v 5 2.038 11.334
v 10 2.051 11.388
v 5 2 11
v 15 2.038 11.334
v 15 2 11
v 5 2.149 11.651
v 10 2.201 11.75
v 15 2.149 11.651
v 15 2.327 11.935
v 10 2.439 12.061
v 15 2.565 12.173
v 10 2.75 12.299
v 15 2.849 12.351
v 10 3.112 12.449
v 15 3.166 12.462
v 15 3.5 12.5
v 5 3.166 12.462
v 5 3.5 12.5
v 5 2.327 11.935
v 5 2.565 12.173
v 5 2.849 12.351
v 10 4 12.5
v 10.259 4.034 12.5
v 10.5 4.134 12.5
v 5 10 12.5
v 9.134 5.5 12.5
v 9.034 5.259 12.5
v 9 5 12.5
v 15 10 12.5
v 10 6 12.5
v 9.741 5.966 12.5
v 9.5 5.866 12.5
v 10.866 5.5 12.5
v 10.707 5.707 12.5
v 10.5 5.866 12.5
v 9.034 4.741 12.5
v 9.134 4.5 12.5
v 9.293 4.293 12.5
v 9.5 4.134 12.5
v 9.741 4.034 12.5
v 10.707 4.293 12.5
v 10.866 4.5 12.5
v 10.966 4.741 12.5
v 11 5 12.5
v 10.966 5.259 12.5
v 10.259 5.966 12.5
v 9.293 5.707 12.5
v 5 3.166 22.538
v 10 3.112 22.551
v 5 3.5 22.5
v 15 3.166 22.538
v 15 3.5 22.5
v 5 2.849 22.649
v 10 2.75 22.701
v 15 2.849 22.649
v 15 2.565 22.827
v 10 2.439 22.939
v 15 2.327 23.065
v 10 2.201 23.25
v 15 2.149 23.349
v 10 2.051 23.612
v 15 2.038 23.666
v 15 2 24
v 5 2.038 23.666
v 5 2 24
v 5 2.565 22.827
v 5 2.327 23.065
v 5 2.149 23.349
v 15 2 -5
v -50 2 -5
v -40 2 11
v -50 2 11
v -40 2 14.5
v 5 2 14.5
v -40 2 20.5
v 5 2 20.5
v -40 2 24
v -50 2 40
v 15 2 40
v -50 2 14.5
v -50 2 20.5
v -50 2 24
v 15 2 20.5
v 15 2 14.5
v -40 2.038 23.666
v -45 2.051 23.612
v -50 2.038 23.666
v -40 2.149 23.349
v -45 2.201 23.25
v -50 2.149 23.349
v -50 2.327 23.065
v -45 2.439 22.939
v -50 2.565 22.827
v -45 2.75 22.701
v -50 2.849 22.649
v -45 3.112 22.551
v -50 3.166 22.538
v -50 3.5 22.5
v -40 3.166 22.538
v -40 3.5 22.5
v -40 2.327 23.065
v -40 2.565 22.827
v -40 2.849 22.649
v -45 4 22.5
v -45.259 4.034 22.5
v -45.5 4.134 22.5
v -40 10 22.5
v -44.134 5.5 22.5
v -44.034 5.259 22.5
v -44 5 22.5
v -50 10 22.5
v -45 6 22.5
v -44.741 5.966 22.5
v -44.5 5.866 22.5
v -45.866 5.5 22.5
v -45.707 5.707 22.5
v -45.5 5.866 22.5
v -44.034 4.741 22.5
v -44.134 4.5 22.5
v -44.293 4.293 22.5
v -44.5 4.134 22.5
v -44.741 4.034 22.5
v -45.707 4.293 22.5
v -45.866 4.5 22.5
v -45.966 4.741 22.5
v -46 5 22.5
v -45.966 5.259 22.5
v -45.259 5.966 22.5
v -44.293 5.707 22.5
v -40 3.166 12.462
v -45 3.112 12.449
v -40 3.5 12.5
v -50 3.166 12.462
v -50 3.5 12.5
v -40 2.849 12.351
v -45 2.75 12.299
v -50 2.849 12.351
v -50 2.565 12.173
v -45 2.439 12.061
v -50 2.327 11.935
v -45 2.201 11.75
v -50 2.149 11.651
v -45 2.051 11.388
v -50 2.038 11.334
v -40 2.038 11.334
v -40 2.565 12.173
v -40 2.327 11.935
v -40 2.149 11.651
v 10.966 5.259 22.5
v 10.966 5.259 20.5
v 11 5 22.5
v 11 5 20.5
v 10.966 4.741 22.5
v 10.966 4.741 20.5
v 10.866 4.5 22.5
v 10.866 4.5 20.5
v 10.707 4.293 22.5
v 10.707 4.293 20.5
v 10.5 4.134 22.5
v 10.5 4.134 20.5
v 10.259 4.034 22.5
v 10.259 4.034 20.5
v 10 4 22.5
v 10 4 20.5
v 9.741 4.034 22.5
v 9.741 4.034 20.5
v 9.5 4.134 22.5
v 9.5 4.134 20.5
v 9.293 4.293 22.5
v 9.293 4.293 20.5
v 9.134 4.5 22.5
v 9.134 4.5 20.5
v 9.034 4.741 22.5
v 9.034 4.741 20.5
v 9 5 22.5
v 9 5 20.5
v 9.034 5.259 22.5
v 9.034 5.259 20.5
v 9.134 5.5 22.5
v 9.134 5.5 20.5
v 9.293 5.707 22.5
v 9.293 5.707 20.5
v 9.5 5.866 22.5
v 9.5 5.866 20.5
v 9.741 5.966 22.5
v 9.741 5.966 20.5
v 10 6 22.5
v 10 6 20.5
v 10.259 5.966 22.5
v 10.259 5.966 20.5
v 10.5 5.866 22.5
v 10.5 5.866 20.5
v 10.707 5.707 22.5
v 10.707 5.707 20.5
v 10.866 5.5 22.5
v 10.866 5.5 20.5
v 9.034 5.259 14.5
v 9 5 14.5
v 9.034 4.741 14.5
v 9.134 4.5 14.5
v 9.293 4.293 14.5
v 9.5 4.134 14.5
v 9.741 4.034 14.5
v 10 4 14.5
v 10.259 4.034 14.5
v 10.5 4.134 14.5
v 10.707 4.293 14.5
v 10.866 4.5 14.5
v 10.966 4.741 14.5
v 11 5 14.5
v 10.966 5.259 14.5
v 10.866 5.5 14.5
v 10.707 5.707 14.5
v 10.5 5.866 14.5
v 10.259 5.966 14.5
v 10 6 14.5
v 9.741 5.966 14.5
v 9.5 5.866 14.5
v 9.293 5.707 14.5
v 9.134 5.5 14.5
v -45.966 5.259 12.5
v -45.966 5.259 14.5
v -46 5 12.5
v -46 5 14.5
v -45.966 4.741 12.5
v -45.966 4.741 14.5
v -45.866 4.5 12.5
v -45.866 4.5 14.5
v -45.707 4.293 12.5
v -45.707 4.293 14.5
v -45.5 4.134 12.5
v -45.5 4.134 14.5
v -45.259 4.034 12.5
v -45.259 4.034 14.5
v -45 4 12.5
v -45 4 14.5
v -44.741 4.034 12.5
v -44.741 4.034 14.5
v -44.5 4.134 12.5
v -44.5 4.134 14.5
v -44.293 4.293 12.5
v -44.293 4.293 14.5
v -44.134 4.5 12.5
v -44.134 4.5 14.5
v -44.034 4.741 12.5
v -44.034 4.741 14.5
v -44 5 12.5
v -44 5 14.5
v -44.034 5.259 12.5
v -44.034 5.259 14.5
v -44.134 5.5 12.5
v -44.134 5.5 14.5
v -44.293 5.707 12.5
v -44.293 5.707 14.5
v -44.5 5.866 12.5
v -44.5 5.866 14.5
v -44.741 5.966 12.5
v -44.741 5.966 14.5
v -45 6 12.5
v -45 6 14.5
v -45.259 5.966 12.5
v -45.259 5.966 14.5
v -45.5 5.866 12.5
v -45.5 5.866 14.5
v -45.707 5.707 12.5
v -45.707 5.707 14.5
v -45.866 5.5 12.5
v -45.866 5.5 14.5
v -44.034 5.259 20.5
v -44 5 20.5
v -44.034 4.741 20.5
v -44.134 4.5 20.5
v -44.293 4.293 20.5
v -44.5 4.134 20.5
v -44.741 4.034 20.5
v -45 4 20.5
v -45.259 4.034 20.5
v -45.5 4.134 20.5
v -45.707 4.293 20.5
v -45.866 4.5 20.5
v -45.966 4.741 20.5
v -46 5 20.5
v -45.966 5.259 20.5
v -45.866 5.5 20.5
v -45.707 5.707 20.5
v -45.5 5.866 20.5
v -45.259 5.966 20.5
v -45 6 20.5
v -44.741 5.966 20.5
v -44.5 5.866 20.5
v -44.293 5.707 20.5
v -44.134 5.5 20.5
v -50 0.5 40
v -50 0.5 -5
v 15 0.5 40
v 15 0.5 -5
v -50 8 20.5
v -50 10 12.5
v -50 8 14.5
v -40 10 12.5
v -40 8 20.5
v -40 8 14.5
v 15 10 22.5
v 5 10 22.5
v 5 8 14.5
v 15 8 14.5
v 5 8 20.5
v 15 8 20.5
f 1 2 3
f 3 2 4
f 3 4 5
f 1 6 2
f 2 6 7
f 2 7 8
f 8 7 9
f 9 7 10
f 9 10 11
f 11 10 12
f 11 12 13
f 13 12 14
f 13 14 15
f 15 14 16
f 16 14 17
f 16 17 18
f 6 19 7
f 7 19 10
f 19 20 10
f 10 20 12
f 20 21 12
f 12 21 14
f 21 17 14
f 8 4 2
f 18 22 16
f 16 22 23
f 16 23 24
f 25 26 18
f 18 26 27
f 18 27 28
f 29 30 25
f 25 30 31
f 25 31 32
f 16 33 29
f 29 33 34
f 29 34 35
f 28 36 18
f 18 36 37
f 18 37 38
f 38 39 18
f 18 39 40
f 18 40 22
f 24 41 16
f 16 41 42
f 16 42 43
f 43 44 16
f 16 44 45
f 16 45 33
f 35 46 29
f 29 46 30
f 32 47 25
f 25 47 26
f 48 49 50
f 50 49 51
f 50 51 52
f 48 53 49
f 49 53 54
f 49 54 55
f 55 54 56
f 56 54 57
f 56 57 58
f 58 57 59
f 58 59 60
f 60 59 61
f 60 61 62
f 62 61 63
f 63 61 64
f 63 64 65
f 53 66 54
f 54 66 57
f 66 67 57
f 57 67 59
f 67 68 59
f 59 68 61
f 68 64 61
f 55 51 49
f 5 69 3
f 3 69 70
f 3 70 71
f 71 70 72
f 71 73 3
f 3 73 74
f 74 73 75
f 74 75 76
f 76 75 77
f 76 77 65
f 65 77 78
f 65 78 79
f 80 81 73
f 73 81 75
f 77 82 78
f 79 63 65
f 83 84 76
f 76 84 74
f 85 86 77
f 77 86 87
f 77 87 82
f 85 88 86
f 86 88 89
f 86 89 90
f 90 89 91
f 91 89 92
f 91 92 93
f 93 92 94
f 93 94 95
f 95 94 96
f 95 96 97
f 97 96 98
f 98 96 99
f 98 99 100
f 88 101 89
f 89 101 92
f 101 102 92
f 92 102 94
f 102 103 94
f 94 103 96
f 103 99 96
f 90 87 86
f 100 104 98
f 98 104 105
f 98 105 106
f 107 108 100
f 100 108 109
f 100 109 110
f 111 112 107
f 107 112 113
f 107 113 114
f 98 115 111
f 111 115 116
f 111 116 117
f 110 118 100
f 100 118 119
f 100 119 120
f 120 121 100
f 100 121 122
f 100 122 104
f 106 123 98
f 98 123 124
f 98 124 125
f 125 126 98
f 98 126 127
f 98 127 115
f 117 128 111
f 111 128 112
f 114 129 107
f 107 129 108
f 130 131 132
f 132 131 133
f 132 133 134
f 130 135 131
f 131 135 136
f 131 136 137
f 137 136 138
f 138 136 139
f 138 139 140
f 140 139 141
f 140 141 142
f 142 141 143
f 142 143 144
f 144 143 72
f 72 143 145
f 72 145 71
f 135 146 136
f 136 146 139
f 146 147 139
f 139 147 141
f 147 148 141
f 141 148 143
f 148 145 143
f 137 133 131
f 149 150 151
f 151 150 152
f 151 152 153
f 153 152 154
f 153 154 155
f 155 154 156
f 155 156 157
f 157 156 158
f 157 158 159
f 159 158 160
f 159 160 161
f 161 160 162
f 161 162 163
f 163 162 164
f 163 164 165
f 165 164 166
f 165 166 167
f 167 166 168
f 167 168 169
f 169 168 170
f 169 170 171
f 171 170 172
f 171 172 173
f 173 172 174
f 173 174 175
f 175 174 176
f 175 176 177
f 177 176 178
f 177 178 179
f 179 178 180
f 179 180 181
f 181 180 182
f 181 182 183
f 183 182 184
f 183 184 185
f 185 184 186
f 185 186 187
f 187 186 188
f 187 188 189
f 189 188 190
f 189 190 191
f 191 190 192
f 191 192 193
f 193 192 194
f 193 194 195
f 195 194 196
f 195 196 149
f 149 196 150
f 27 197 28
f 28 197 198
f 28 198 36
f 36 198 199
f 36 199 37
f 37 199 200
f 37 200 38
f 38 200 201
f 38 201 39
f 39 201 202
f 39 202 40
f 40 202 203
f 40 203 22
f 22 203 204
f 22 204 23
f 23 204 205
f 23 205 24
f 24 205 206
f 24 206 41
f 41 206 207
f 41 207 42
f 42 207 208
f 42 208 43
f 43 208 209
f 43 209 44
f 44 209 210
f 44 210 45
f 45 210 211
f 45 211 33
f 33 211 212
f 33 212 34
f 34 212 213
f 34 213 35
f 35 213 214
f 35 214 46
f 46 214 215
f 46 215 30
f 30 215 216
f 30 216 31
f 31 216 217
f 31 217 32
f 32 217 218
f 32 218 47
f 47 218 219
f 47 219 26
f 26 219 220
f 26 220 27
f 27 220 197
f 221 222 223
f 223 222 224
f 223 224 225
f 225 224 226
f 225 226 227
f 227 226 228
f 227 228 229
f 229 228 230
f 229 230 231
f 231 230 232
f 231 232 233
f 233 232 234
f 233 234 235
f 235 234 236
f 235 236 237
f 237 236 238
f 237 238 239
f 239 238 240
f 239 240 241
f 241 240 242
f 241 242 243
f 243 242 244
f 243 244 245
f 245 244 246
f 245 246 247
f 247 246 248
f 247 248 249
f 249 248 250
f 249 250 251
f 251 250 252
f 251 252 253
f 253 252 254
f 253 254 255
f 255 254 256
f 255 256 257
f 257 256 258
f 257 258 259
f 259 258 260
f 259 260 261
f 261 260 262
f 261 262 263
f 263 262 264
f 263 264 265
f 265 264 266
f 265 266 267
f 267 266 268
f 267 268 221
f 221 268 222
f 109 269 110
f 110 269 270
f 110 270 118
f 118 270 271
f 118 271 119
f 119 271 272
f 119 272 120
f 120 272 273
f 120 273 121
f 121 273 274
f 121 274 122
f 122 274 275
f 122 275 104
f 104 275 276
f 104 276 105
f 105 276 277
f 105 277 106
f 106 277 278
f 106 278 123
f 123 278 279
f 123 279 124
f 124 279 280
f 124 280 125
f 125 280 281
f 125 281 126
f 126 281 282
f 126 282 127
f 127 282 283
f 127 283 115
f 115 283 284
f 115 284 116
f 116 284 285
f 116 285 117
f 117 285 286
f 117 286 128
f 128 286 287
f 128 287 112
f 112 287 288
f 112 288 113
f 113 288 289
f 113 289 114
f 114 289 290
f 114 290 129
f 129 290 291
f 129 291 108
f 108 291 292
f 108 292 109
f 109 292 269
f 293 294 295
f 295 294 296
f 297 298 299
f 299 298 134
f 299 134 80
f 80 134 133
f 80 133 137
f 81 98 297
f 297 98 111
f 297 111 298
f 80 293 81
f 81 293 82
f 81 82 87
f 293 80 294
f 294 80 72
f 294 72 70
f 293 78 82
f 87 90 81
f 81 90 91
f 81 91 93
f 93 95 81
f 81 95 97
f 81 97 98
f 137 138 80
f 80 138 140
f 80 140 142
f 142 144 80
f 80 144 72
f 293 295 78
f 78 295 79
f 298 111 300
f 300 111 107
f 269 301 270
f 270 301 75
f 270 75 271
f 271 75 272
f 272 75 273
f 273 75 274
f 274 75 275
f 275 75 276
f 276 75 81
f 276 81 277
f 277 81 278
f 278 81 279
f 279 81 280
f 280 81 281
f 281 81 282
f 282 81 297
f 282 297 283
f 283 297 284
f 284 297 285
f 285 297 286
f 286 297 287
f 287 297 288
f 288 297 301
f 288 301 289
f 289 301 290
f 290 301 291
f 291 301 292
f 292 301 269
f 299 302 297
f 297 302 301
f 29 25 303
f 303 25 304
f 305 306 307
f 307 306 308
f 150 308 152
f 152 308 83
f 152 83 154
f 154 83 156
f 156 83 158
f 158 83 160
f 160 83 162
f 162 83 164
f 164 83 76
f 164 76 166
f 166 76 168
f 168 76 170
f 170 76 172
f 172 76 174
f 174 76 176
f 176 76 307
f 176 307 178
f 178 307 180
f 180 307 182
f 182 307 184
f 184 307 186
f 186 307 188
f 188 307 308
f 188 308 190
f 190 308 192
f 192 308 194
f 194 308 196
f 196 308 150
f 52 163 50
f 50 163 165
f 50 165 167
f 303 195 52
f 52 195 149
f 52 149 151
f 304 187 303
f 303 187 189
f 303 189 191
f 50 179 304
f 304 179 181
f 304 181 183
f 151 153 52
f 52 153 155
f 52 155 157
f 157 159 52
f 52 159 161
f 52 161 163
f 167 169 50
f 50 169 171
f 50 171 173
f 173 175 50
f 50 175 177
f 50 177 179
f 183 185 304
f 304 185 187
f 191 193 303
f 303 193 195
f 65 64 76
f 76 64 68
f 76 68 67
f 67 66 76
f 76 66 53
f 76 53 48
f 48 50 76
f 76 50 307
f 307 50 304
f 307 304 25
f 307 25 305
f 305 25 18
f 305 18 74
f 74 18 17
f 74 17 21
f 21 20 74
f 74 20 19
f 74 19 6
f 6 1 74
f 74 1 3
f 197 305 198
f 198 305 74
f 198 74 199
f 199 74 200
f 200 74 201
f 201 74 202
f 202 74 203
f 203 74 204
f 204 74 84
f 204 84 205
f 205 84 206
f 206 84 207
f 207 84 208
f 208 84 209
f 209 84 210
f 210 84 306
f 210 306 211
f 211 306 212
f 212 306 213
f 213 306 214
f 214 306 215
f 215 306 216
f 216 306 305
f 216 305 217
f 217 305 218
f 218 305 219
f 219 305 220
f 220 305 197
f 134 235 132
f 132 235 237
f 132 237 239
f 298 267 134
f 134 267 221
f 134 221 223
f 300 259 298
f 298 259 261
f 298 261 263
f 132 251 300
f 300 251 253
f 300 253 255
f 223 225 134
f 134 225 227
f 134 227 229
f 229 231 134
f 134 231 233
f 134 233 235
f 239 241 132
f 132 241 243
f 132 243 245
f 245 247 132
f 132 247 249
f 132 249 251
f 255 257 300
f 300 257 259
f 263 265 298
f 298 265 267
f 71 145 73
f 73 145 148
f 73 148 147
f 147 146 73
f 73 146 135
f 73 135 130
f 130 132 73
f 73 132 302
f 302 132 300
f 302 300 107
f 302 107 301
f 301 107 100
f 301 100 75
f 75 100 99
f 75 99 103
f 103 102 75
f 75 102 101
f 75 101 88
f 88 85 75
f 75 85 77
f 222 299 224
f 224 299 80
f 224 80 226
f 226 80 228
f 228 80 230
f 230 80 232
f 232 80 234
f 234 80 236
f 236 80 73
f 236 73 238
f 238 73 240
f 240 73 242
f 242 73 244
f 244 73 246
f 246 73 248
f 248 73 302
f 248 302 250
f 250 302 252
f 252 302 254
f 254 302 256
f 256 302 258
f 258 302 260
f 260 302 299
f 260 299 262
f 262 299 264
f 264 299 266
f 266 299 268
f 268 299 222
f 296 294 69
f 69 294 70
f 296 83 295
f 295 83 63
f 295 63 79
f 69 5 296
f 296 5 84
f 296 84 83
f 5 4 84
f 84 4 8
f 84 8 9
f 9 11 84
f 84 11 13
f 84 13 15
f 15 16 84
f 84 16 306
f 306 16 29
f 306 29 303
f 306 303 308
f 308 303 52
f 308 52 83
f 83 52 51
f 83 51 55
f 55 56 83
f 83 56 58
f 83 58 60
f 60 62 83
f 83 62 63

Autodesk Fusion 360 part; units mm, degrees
sketch "Sketch1" plane through (0, 0, 0) normal (0, 1, 0) x (1, 0, 0)
  line L0 (-50, 5) -> (15, 5)
  line L1 (15, 5) -> (15, -40)
  line L2 (15, -40) -> (-50, -40)
  line L3 (-50, -40) -> (-50, 5)
  dimension "d1" = 65
  dimension "d2" = 45
extrude "Extrude1" add sketch "Sketch1" along normal blind 2
sketch "Sketch2" plane through (0, 2, 0) normal (0, 1, 0) x (-1, 0, 0)
  line L0 (50, 40) -> (-15, 40)
  line L1 (-15, 40) -> (-15, -5)
  line L2 (-15, -5) -> (50, -5)
  line L3 (50, -5) -> (50, 40)
  line L4 (50, 17.5) -> (-15, 17.5)
  line L5 (50, 14.5) -> (-15, 14.5)
  line L6 (-15, 20.5) -> (50, 20.5)
  line L7 (50, 12.5) -> (-15, 12.5)
  line L8 (-15, 22.5) -> (50, 22.5)
  line L9 (50, 17.5) -> (40, 17.5)
  line L10 (40, 17.5) -> (40, 12.5)
  line L11 (40, 17.5) -> (40, 22.5)
  line L12 (-15, 17.5) -> (-5, 17.5)
  line L13 (-5, 17.5) -> (-5, 12.5)
  line L14 (-5, 17.5) -> (-5, 22.5)
  dimension "d5" = 3
  dimension "d6" = 6
  dimension "d7" = -2
  dimension "d8" = -2
  dimension "d9" = 10
  dimension "d15" = 10
extrude "Extrude2" add sketch "Sketch2" along normal blind 7 contours L3 L6 L8 L11 | L3 L5 L7 L10
sketch "Sketch3" plane through (0, 0, 14.5) normal (0, 0, 1) x (1, 0, 0)
  line L0 (-50, 2) -> (-40, 2)
  line L1 (-40, 2) -> (-40, 9)
  line L2 (-40, 9) -> (-50, 9)
  line L3 (-50, 9) -> (-50, 2)
  line L4 (-40, 8) -> (-50, 8)
  dimension "d12" = -1
extrude "Extrude4" add sketch "Sketch2" along normal blind 7 contours L1 L6 L8 L14 | L1 L5 L7 L13
sketch "Sketch4" plane through (0, 0, 14.5) normal (0, 0, 1) x (1, 0, 0)
  line L0 (5, 2) -> (15, 2)
  line L1 (15, 2) -> (15, 9)
  line L2 (15, 9) -> (5, 9)
  line L3 (5, 9) -> (5, 2)
  line L4 (15, 8) -> (5, 8)
  dimension "d18" = -1
extrude "Extrude5" add sketch "Sketch4" along normal blind 6 contours L1 L2 L3 L4
extrude "Extrude6" add 1 faces at (8.3333, 9, 19.1667) along direction (0, 1, 0) blind 1
extrude "Extrude7" add sketch "Sketch3" along normal blind 1 contours L1 L2 L3 L4
extrude "Extrude8" add 1 faces at (-46.6667, 8.6667, 15.5) along direction (0, 0, 1) blind 5
extrude "Extrude9" add 1 faces at (-43.3333, 9, 15.8333) along direction (0, 1, 0) blind 1
extrude "Extrude10" cut 1 faces at (-28.3333, 0, 10) along direction (0, 1, 0) blind 0.5
sketch "Sketch5" plane through (0, 0, 22.5) normal (0, 0, 1) x (1, 0, 0)
  line L0 (-50, 2) -> (-40, 2)
  line L1 (-40, 2) -> (-40, 10)
  line L2 (-40, 10) -> (-50, 10)
  line L3 (-50, 10) -> (-50, 2)
  line L4 (-50, 2) -> (-50, 2.3478)
  circle A0 centre (-45, 5) radius 1
  dimension "d31" = 2
hole "Hole1" at (-45, 5, 22.5) direction (0, 0, -1) diameter 2 depth 2 tip angle 180
sketch "Sketch6" plane through (0, 0, 12.5) normal (0, 0, -1) x (-1, 0, 0)
  line L0 (40, 2) -> (50, 2)
  line L1 (50, 2) -> (50, 10)
  line L2 (50, 10) -> (40, 10)
  line L3 (40, 10) -> (40, 2)
  line L4 (40, 2) -> (45, 2)
  line L5 (45, 2) -> (45, 5)
  circle A0 centre (45, 5) radius 1
  dimension "d35" = 3
  dimension "d36" = 2
hole "Hole2" at (-45, 5, 12.5) direction (0, 0, 1) diameter 2 depth 2 tip angle 180
sketch "Sketch7" plane through (0, 0, 12.5) normal (0, 0, -1) x (-1, 0, 0)
  line L0 (-15, 2) -> (-5, 2)
  line L1 (-5, 2) -> (-5, 10)
  line L2 (-5, 10) -> (-15, 10)
  line L3 (-15, 10) -> (-15, 2)
  line L4 (-15, 2) -> (-10, 2)
  line L5 (-10, 2) -> (-10, 5)
  circle A0 centre (-10, 5) radius 1
  dimension "d40" = 3
  dimension "d41" = 2
hole "Hole3" at (10, 5, 12.5) direction (0, 0, 1) diameter 2 depth 2 tip angle 180
sketch "Sketch8" plane through (0, 2, 0) normal (0, 1, 0) x (-1, 0, 0)
sketch "Sketch9" plane through (0, 0, 22.5) normal (0, 0, 1) x (1, 0, 0)
  line L0 (5, 2) -> (15, 2)
  line L1 (15, 2) -> (15, 10)
  line L2 (15, 10) -> (5, 10)
  line L3 (5, 10) -> (5, 2)
  line L4 (5, 2) -> (10, 2)
  line L5 (10, 2) -> (10, 5)
  circle A0 centre (10, 5) radius 1
  dimension "d45" = 3
  dimension "d46" = 2
hole "Hole4" at (10, 5, 22.5) direction (0, 0, -1) diameter 2 depth 2 tip angle 180
fillet "Fillet1" radius 1.5 4 edges at (-45, 2, 12.5) (-45, 2, 22.5) (10, 2, 22.5) (10, 2, 12.5)
extrude "Extrude3" add sketch "Sketch3" along normal blind 6 contours L1 L2 L3 L4
